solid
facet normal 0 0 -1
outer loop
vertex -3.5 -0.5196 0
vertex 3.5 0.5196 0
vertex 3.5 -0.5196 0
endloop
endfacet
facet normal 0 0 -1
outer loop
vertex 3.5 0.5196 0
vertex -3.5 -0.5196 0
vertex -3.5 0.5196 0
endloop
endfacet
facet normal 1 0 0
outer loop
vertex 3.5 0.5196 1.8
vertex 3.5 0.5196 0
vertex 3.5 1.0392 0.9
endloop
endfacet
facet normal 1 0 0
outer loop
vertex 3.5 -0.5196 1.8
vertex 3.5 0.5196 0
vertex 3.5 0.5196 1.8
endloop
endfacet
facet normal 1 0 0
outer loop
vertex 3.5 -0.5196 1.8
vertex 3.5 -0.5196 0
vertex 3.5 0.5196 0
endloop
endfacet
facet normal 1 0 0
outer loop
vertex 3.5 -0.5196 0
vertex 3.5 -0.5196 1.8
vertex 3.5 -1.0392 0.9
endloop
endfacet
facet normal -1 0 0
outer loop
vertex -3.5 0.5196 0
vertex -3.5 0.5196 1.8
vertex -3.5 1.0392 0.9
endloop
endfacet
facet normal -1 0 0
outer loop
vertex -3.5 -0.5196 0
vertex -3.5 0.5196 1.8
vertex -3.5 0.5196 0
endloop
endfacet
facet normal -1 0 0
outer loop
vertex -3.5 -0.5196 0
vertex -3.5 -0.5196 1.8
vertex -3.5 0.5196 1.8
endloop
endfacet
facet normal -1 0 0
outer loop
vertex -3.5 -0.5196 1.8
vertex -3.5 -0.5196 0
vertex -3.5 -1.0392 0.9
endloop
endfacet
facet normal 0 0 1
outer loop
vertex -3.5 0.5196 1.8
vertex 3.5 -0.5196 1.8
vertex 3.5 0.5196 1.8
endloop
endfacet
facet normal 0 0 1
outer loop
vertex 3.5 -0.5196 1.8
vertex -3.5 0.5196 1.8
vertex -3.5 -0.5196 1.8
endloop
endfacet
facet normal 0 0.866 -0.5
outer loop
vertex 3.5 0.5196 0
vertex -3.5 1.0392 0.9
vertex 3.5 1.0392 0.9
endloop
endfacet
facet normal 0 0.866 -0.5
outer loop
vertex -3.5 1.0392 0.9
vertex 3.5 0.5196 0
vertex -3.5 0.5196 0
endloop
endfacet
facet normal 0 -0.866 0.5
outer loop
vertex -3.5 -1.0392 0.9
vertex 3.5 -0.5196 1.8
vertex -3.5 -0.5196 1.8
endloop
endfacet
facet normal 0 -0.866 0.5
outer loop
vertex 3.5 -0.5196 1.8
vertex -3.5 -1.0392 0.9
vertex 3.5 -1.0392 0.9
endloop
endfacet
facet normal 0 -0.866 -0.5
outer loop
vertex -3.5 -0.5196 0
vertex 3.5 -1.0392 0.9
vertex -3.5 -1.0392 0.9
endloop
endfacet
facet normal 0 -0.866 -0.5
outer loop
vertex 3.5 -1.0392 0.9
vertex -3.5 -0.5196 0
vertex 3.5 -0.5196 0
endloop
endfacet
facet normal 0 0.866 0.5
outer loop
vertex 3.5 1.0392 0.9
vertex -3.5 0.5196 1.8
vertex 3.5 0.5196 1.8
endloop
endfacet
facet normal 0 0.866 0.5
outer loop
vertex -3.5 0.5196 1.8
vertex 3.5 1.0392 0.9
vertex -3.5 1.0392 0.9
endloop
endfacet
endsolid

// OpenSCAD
//============================================================
// OpenSCAD
// Licence : LICENCE PUBLIQUE RIEN À BRANLER
// Licence : do What The Fuck you want to Public License
//============================================================
/*

	Usage:
	use <Hexagones.scad>;
	Pour créer des jeux, des têtes de vis...

*/


//------------------------------------------------------------
// Demo
//------------------------------------------------------------
$fn = 150 ;			// OpenSCAD Resolution
// hexagone de 1 pouce (1 inch) soit 25.4 mm
Hexagone(cle=1.8,h=7);

//------------------------------------------------------------
// Hexagone
// cle	écart, ex: clé de 12 alors cle=12
// h		hauteur
//------------------------------------------------------------
module Hexagone(cle,h)
{
	angle = 360/6;		// 6 pans
	cote = cle * cot(angle);
	echo(angle, cot(angle), cote);
	echo(acos(.6));

    translate([0,0,0.9]) {
        rotate([0,90,0]) {
            union()
            {
                rotate([0,0,0])
                    cube([cle,cote,h],center=true);
                rotate([0,0,angle])
                    cube([cle,cote,h],center=true);
                rotate([0,0,2*angle])
                    cube([cle,cote,h],center=true);
            }
        }
    }

// Vérification par un cercle de taille cle
//	#cylinder(r=cle/2,h=2*h,center=true);
//	%circle(r=cote,center=true);
//	#cube([cote,cote,1]);
}

//------------------------------------------------------------
// Fonction cotangente
// Permet d'avoir les bones dimensions
// utiliser $fn n'est pas bon
//------------------------------------------------------------
function cot(x)=1/tan(x);

//==EOF=======================================================
